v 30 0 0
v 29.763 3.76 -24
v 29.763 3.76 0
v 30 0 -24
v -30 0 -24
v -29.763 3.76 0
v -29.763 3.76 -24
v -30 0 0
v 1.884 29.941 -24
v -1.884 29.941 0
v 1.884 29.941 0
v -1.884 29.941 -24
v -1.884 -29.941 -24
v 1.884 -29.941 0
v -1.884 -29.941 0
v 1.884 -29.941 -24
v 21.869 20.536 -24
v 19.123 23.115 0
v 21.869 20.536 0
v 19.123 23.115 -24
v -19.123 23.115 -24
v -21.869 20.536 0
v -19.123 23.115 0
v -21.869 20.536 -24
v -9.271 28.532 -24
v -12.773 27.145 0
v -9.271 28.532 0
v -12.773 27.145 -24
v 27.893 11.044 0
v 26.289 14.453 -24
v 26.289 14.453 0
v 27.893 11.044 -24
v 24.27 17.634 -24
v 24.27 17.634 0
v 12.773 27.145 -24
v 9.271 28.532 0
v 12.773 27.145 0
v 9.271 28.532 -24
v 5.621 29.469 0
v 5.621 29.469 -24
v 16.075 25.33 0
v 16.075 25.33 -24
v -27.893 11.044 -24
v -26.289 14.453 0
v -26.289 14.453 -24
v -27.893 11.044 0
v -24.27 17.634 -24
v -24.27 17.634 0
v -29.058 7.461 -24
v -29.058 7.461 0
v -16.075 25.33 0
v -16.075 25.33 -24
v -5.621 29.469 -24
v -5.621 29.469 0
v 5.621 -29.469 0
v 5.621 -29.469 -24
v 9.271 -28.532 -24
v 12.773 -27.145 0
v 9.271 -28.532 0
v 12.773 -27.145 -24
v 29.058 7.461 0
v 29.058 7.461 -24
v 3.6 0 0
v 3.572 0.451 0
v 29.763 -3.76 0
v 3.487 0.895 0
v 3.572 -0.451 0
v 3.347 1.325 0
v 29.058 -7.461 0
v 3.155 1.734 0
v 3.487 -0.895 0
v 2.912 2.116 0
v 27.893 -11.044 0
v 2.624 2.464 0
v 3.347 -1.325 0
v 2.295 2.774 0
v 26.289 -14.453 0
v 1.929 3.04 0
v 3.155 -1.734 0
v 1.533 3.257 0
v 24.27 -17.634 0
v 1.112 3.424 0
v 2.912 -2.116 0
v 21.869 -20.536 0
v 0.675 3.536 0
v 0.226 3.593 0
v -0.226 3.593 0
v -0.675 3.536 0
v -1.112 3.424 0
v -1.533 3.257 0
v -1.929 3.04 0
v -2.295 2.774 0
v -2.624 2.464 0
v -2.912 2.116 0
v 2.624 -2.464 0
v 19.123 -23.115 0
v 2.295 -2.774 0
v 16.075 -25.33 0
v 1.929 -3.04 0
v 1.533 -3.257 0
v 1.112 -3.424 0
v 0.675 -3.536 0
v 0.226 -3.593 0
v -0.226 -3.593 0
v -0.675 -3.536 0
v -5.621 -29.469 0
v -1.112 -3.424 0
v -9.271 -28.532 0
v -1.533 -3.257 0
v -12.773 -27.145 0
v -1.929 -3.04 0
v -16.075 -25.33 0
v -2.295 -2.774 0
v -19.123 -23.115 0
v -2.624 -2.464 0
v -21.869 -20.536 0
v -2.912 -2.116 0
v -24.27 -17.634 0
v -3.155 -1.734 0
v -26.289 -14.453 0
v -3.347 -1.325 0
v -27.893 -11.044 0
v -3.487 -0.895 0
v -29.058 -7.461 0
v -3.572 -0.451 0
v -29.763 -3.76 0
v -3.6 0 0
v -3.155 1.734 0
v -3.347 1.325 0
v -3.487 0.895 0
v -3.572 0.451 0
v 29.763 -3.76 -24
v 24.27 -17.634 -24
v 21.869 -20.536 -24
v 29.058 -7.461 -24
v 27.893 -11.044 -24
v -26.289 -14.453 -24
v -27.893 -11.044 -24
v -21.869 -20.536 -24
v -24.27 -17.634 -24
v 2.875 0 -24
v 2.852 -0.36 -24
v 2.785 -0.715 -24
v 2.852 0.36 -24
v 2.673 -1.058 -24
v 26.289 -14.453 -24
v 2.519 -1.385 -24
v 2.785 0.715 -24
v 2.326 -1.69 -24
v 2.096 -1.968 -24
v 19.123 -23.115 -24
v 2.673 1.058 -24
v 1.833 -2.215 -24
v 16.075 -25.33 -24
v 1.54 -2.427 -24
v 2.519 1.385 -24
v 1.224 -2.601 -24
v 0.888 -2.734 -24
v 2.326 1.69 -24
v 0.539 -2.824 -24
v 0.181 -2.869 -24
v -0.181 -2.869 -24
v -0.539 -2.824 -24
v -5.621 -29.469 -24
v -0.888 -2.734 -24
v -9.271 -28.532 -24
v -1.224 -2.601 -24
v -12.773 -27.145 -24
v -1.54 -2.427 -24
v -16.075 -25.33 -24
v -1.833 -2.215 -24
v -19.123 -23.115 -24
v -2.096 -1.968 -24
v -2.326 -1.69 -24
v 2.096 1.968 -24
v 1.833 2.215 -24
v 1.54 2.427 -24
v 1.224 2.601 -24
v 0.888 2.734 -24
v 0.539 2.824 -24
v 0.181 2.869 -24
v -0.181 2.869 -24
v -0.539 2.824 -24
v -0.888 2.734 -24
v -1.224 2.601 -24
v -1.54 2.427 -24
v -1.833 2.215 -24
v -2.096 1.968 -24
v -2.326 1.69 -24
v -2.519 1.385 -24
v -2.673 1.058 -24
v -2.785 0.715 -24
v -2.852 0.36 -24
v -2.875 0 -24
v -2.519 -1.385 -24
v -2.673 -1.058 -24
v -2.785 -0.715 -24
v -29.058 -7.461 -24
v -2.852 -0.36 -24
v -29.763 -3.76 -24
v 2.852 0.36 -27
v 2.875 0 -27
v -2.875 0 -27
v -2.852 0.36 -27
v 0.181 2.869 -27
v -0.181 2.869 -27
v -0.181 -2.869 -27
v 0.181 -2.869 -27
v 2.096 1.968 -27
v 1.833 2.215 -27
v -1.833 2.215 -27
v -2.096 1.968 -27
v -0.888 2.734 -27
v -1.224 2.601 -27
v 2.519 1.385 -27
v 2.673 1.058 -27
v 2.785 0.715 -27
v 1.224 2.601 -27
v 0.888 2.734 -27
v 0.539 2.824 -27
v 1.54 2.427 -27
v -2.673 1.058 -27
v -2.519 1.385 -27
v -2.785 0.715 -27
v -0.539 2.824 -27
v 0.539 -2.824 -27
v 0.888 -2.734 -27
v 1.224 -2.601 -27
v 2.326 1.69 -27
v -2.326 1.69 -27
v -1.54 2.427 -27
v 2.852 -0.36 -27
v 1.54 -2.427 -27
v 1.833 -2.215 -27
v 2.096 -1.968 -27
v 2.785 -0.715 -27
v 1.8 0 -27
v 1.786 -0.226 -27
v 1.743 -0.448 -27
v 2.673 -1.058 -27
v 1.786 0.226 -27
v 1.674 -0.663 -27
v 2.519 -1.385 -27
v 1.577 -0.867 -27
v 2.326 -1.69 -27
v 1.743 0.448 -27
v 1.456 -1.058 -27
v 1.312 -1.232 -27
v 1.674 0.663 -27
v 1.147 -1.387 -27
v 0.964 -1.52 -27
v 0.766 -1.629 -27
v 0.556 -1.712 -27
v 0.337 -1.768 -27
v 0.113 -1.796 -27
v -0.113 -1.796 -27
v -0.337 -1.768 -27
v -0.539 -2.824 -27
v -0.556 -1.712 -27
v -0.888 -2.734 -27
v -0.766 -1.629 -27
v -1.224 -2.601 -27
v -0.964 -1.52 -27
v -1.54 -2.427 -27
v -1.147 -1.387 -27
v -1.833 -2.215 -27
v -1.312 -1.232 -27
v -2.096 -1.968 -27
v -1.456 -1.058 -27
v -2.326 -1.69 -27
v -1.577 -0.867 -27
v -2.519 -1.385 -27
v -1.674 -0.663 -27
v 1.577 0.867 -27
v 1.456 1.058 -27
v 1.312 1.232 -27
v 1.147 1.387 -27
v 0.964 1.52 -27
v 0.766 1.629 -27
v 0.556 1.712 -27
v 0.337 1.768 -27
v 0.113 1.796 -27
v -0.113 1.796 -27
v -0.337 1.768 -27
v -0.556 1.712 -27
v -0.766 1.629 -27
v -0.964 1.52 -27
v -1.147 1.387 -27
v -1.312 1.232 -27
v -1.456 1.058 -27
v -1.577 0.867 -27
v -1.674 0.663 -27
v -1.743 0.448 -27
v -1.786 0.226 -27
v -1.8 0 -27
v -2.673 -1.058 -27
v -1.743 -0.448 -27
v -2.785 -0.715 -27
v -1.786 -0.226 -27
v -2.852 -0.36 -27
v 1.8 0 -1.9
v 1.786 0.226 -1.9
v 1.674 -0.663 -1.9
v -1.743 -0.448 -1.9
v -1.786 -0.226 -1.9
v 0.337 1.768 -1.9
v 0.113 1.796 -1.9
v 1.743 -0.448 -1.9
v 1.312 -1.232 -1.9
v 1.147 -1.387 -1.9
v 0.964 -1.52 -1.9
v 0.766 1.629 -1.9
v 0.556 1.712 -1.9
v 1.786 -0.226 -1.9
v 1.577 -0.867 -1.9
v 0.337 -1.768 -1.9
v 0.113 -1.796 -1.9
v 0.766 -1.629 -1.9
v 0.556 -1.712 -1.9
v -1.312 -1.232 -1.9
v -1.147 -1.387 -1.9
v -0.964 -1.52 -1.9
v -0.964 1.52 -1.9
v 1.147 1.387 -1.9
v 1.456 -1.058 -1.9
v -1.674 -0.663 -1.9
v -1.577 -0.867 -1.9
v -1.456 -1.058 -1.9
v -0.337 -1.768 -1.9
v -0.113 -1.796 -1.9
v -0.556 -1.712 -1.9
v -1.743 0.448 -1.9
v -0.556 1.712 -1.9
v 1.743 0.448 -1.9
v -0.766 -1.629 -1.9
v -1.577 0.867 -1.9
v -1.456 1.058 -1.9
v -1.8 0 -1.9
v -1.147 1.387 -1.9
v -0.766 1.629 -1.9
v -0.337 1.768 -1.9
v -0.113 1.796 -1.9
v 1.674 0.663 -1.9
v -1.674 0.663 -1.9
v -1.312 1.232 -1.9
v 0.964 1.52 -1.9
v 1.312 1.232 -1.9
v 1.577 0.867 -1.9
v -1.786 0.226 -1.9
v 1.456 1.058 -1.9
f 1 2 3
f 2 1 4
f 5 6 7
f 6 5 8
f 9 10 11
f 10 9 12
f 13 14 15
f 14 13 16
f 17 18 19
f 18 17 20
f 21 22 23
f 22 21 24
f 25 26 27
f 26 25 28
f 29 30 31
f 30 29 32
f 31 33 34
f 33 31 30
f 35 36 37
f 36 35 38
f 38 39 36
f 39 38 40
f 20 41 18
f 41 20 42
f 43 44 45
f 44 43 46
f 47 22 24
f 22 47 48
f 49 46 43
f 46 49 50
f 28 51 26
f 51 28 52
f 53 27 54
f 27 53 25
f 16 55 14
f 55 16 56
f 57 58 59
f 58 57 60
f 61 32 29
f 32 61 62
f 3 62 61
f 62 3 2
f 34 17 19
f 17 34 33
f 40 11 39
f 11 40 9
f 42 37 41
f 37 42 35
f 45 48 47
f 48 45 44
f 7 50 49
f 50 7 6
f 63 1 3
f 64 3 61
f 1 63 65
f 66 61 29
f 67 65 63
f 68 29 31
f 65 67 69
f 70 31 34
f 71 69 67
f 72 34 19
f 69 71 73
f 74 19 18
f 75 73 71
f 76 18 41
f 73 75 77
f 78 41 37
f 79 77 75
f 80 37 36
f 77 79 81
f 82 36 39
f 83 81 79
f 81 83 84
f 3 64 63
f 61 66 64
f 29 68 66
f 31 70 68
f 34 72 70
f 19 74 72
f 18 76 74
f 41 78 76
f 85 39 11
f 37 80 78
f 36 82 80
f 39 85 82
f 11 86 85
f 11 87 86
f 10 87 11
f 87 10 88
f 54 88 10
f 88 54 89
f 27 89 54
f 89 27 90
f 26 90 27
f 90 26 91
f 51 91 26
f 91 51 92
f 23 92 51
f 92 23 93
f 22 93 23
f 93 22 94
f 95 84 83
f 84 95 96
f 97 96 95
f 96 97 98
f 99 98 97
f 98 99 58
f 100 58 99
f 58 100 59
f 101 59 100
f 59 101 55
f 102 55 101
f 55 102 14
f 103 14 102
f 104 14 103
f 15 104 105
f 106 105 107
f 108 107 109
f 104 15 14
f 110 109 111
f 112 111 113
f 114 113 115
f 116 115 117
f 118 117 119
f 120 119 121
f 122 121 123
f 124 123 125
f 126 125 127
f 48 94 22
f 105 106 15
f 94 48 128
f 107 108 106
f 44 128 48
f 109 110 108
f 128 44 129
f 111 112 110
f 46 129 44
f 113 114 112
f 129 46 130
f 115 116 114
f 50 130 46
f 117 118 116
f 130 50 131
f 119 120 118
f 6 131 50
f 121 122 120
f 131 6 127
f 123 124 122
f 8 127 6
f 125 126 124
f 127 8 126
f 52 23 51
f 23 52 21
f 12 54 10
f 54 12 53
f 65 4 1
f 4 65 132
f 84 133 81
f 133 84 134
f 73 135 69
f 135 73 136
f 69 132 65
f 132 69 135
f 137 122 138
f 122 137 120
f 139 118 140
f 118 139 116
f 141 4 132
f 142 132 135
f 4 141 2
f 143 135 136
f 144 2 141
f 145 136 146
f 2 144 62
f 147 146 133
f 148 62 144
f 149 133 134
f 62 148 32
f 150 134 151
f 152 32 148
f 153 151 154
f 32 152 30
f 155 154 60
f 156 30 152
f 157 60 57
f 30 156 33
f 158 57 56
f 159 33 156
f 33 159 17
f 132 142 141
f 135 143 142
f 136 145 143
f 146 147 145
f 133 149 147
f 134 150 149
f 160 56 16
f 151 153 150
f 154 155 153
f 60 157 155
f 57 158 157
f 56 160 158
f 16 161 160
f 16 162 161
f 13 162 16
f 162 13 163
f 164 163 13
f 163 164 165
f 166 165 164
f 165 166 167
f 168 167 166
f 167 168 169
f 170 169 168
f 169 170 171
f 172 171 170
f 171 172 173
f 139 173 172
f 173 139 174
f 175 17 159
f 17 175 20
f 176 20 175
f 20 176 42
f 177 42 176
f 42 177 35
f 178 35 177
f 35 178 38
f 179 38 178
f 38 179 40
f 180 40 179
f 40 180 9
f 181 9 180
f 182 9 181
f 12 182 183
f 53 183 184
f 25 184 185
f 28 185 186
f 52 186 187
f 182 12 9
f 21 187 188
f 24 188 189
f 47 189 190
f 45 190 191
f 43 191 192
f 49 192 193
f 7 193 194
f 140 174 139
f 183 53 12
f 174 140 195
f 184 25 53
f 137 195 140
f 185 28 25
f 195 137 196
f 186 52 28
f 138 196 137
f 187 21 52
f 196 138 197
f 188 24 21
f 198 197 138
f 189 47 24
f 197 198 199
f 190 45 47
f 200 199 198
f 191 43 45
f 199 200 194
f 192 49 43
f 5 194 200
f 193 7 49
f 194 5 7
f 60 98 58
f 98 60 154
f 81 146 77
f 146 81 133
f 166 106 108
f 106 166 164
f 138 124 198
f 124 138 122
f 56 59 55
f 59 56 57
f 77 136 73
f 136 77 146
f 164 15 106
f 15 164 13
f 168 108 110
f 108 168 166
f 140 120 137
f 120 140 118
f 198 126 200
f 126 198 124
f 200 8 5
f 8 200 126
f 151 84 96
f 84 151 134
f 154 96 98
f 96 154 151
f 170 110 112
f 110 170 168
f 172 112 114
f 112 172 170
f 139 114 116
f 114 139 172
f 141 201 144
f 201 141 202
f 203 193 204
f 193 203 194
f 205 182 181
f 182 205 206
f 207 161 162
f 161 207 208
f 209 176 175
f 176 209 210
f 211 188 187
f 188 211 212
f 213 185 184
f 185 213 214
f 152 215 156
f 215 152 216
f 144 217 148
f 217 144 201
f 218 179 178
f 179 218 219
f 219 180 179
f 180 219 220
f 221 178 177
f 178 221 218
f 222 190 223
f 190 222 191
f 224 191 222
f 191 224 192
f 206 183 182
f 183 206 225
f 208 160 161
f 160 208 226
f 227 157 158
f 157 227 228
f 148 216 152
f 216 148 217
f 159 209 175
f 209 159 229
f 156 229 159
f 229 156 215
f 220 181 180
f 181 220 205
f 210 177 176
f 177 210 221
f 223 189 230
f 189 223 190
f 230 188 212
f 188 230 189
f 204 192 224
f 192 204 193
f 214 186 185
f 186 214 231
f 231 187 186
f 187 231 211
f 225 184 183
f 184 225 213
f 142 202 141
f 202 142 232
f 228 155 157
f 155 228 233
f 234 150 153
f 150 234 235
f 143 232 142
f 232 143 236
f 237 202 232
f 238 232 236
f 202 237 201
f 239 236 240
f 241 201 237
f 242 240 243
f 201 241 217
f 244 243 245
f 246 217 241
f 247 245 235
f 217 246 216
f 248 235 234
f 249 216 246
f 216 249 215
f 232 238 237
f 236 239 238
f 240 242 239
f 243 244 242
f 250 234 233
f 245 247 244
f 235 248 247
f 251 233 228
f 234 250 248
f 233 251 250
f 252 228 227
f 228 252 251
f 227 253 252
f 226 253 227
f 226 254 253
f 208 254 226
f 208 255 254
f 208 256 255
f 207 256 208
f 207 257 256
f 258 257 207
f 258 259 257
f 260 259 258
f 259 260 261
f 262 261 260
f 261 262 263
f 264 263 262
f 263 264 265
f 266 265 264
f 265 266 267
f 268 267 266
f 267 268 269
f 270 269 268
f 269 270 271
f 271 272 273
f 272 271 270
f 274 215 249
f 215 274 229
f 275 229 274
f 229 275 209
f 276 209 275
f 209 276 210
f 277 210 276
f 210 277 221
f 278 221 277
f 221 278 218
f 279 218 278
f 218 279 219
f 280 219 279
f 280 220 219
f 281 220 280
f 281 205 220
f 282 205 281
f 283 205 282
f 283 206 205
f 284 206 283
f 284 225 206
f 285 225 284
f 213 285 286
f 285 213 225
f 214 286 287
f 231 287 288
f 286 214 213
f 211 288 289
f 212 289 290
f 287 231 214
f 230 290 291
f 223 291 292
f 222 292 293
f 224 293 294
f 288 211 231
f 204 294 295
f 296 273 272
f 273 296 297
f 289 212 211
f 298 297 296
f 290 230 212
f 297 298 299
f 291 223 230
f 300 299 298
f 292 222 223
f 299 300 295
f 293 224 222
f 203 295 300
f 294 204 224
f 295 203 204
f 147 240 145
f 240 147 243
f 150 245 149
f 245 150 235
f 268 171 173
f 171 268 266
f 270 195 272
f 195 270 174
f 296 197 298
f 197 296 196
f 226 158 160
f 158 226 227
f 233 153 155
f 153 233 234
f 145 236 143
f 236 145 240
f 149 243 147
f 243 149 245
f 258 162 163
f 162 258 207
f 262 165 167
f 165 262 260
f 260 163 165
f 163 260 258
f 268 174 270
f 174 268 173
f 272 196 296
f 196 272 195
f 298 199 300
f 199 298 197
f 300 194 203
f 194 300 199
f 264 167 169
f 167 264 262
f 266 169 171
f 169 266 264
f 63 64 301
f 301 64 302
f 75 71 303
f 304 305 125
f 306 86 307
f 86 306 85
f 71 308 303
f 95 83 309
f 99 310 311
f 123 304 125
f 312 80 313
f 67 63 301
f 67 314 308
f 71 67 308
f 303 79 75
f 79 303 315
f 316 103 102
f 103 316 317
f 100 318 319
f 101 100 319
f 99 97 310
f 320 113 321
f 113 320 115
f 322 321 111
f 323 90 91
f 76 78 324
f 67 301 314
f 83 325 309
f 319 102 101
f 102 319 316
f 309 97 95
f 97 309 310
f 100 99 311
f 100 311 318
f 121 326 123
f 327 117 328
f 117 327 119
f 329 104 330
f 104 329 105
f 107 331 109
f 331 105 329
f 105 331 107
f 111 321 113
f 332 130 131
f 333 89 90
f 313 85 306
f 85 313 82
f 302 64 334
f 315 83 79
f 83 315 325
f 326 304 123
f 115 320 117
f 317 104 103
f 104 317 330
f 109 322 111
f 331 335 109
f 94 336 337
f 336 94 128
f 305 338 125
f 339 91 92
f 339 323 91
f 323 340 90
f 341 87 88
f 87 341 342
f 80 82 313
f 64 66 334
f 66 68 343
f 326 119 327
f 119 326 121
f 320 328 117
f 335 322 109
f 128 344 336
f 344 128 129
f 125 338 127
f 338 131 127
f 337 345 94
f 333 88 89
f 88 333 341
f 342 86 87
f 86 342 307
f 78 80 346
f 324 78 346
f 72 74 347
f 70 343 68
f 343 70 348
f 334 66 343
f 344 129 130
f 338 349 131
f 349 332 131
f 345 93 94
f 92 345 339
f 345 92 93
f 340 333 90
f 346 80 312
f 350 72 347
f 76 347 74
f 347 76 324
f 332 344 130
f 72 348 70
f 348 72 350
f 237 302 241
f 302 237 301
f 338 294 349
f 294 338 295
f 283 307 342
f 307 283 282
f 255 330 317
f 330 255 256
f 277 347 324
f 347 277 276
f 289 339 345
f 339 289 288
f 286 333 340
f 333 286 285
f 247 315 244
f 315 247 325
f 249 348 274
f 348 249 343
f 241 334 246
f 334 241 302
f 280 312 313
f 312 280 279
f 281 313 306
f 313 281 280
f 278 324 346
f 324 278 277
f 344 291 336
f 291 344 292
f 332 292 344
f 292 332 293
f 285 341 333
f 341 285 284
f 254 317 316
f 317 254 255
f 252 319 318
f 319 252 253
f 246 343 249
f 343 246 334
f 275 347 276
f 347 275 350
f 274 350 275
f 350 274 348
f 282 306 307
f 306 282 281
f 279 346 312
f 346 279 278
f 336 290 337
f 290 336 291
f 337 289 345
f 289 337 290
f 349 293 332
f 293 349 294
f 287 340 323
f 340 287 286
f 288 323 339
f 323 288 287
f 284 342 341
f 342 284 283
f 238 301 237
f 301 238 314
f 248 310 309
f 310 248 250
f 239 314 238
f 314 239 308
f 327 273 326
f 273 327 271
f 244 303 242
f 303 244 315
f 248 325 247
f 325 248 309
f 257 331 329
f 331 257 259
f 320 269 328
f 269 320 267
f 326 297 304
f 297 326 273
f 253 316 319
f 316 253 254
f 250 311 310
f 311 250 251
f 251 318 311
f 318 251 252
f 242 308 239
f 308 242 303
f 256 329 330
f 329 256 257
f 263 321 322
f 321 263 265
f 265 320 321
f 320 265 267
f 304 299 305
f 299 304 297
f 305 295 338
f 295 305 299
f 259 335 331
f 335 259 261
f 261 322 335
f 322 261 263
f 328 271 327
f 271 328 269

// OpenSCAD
$fn = 50;


difference() {
	union() {
		translate(v = [0, 0, -24.0000000000]) {
			cylinder(h = 24, r = 30.0000000000);
		}
		#translate(v = [0, 0, -27.0000000000]) {
			cylinder(h = 27, r = 2.8750000000);
		}
	}
	union() {
		translate(v = [0, 0, 0]) {
			rotate(a = [0, 0, 0]) {
				difference() {
					union() {
						translate(v = [0, 0, -27.0000000000]) {
							cylinder(h = 27, r = 1.5000000000);
						}
						translate(v = [0, 0, -1.9000000000]) {
							cylinder(h = 1.9000000000, r1 = 1.8000000000, r2 = 3.6000000000);
						}
						translate(v = [0, 0, -27.0000000000]) {
							cylinder(h = 27, r = 1.8000000000);
						}
						translate(v = [0, 0, -27.0000000000]) {
							cylinder(h = 27, r = 1.5000000000);
						}
					}
					union();
				}
			}
		}
	}
}
